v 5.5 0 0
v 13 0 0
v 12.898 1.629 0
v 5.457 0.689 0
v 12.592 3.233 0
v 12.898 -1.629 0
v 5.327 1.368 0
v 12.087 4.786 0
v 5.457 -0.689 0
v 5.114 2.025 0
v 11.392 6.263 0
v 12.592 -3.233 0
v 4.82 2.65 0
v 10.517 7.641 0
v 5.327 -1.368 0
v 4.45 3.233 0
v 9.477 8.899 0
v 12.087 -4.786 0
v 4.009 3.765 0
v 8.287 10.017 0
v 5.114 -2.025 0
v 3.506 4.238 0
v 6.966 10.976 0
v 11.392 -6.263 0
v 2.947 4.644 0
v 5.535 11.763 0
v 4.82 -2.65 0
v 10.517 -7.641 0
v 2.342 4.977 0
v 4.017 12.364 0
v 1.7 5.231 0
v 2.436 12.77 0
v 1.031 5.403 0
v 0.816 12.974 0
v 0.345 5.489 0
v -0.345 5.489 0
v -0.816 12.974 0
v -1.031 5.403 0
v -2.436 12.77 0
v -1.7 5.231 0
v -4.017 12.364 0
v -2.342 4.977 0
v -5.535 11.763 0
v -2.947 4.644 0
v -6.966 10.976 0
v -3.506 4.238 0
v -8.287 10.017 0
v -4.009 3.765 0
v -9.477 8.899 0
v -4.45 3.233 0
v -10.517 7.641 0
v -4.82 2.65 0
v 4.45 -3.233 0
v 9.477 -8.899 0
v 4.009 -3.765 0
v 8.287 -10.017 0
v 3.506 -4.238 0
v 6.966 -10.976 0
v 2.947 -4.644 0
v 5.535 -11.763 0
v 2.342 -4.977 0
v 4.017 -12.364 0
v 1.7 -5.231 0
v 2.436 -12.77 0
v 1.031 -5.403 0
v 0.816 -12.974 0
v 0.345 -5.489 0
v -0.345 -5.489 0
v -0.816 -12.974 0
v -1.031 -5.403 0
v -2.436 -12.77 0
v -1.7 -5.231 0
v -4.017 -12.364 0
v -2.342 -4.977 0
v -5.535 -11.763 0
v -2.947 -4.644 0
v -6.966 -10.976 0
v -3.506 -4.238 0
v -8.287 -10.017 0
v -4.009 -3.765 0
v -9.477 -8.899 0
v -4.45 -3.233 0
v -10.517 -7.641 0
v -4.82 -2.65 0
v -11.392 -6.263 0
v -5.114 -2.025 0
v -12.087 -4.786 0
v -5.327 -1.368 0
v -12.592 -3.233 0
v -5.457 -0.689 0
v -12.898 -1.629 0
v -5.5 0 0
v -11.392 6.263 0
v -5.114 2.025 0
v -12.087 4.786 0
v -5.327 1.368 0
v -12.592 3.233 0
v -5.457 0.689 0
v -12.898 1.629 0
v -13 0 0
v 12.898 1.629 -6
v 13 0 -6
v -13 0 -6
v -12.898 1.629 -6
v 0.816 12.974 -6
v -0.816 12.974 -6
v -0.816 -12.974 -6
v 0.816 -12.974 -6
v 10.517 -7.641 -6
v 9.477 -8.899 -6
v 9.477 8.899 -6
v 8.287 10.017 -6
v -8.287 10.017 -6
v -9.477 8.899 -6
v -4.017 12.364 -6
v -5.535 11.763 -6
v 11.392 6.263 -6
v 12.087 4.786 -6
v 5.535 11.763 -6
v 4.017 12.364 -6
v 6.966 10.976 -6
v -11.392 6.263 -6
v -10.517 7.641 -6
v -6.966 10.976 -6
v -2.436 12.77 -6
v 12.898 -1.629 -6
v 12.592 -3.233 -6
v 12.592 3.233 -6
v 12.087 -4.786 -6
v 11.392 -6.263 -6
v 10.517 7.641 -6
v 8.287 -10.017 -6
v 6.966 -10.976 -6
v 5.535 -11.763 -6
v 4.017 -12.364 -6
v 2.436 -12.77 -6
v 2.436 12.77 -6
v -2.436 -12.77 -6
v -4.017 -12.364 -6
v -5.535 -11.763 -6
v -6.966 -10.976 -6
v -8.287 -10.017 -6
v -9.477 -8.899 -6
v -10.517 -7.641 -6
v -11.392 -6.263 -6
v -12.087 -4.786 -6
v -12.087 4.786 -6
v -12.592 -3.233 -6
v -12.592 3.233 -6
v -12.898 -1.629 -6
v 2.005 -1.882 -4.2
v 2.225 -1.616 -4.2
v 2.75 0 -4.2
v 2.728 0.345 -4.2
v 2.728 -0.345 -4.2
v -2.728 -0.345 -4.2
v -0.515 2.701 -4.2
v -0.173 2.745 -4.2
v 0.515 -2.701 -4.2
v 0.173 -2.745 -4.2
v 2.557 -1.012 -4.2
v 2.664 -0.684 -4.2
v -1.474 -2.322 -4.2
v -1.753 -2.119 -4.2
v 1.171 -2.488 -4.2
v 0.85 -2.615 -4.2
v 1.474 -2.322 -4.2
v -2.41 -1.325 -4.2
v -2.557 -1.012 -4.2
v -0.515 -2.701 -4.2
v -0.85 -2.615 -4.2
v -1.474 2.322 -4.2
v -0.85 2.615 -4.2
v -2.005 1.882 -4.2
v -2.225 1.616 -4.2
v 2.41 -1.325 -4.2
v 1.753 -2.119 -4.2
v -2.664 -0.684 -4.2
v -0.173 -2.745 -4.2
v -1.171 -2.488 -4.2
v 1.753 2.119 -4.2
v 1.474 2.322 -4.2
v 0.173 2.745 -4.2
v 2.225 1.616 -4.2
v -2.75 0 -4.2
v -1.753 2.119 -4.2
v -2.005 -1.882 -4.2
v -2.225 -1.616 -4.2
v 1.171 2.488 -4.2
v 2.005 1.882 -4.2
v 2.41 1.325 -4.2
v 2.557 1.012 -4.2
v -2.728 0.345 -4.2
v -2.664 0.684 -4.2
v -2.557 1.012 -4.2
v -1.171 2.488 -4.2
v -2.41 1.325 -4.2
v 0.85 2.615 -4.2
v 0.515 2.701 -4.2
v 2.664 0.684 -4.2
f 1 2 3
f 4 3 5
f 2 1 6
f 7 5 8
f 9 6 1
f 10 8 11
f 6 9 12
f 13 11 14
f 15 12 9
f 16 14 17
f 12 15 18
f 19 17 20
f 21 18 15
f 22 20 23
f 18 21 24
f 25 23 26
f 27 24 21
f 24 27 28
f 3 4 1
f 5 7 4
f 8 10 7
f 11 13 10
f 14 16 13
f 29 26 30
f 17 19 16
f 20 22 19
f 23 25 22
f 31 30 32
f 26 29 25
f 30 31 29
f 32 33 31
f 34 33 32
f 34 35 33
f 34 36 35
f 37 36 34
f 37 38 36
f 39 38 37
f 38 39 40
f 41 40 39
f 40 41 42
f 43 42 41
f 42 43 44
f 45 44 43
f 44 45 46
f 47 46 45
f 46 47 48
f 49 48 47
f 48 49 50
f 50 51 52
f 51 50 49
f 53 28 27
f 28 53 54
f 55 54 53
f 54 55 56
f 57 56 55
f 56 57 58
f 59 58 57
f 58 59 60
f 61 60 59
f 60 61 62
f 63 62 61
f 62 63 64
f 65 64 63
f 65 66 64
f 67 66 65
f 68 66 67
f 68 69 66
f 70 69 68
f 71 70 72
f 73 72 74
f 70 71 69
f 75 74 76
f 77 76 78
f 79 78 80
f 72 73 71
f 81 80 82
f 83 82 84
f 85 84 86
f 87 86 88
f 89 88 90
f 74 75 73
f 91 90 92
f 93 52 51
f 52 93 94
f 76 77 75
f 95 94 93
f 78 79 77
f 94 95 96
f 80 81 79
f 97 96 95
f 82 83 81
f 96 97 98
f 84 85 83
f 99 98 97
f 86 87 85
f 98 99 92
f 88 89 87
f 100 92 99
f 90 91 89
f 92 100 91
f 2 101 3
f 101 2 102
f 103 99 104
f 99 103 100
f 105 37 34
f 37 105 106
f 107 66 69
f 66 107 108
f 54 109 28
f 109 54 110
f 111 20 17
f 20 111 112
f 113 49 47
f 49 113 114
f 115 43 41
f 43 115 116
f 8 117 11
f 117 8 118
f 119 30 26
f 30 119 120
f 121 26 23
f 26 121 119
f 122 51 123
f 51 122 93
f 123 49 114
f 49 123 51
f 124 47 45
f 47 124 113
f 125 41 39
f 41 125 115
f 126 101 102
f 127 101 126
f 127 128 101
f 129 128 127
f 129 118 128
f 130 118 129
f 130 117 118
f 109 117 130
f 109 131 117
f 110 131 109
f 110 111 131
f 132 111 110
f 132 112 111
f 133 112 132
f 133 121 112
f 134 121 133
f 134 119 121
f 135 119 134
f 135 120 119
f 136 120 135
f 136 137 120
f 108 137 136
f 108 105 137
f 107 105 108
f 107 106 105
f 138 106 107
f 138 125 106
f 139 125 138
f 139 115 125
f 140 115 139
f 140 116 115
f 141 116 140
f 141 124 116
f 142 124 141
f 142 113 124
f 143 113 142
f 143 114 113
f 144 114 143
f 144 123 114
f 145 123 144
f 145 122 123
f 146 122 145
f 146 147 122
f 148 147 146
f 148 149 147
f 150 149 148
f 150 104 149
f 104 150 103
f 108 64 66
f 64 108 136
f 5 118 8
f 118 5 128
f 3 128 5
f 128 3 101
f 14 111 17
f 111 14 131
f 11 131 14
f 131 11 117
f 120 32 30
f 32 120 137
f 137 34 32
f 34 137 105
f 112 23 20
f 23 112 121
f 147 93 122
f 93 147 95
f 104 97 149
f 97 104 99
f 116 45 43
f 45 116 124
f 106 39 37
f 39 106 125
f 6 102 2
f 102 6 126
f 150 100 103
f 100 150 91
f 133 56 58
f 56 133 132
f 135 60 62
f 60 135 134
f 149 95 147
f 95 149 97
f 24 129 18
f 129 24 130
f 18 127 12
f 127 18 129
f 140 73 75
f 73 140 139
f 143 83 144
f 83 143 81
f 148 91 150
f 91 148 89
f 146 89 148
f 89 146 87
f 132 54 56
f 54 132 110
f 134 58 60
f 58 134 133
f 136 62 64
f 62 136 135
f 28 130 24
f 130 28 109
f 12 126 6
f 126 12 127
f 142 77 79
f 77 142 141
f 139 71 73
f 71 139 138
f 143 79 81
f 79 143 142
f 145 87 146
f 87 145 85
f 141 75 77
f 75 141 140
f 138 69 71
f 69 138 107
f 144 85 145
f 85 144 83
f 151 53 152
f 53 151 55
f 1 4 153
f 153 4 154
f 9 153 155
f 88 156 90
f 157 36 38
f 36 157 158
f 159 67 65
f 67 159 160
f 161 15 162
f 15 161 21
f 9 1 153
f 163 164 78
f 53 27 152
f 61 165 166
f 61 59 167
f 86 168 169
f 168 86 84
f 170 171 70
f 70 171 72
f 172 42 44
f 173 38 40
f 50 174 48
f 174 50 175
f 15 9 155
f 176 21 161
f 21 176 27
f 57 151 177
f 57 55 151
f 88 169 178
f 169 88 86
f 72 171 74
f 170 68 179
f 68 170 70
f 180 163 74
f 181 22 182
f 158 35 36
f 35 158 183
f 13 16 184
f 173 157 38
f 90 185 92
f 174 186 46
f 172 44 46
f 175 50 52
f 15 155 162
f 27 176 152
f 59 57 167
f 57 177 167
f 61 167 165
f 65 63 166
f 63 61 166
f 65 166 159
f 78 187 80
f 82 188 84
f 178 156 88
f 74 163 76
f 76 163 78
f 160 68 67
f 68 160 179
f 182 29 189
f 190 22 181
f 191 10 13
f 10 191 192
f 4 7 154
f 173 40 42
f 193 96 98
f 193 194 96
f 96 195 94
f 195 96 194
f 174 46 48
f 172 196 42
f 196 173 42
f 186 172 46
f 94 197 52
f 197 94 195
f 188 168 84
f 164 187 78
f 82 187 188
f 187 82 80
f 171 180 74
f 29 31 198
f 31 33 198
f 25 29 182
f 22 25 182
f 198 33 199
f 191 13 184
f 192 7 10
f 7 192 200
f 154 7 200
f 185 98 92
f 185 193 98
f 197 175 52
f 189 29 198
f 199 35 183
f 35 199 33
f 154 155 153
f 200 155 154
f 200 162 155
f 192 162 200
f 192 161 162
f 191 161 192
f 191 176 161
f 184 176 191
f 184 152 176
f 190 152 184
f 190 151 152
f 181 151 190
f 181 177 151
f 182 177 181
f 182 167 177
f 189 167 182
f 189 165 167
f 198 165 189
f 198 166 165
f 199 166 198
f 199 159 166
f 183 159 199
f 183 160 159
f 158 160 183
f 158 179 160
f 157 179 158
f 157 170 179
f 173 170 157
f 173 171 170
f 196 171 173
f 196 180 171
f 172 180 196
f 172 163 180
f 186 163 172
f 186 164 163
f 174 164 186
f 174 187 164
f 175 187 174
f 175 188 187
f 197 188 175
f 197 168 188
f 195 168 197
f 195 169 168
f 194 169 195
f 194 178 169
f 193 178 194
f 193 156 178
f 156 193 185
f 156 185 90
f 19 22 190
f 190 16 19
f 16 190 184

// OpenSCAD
$fn = 50;


difference() {
	union() {
		translate(v = [0, 0, -3.0000000000]) {
			cylinder(h = 3, r = 7.0000000000);
		}
		translate(v = [0, 0, -6.0000000000]) {
			cylinder(h = 6, r = 13.0000000000);
		}
	}
	union() {
		translate(v = [0, 0, 0]) {
			rotate(a = [0, 0, 0]) {
				difference() {
					union() {
						#translate(v = [0, 0, -3.0000000000]) {
							cylinder(h = 3, r = 2.2500000000);
						}
						#translate(v = [0, 0, -4.2000000000]) {
							cylinder(h = 4.2000000000, r = 7.0000000000, r1 = 2.7500000000, r2 = 5.5000000000);
						}
						#translate(v = [0, 0, -3.0000000000]) {
							cylinder(h = 3, r = 2.7500000000);
						}
						#translate(v = [0, 0, -3.0000000000]) {
							cylinder(h = 3, r = 2.2500000000);
						}
					}
					union();
				}
			}
		}
	}
}
